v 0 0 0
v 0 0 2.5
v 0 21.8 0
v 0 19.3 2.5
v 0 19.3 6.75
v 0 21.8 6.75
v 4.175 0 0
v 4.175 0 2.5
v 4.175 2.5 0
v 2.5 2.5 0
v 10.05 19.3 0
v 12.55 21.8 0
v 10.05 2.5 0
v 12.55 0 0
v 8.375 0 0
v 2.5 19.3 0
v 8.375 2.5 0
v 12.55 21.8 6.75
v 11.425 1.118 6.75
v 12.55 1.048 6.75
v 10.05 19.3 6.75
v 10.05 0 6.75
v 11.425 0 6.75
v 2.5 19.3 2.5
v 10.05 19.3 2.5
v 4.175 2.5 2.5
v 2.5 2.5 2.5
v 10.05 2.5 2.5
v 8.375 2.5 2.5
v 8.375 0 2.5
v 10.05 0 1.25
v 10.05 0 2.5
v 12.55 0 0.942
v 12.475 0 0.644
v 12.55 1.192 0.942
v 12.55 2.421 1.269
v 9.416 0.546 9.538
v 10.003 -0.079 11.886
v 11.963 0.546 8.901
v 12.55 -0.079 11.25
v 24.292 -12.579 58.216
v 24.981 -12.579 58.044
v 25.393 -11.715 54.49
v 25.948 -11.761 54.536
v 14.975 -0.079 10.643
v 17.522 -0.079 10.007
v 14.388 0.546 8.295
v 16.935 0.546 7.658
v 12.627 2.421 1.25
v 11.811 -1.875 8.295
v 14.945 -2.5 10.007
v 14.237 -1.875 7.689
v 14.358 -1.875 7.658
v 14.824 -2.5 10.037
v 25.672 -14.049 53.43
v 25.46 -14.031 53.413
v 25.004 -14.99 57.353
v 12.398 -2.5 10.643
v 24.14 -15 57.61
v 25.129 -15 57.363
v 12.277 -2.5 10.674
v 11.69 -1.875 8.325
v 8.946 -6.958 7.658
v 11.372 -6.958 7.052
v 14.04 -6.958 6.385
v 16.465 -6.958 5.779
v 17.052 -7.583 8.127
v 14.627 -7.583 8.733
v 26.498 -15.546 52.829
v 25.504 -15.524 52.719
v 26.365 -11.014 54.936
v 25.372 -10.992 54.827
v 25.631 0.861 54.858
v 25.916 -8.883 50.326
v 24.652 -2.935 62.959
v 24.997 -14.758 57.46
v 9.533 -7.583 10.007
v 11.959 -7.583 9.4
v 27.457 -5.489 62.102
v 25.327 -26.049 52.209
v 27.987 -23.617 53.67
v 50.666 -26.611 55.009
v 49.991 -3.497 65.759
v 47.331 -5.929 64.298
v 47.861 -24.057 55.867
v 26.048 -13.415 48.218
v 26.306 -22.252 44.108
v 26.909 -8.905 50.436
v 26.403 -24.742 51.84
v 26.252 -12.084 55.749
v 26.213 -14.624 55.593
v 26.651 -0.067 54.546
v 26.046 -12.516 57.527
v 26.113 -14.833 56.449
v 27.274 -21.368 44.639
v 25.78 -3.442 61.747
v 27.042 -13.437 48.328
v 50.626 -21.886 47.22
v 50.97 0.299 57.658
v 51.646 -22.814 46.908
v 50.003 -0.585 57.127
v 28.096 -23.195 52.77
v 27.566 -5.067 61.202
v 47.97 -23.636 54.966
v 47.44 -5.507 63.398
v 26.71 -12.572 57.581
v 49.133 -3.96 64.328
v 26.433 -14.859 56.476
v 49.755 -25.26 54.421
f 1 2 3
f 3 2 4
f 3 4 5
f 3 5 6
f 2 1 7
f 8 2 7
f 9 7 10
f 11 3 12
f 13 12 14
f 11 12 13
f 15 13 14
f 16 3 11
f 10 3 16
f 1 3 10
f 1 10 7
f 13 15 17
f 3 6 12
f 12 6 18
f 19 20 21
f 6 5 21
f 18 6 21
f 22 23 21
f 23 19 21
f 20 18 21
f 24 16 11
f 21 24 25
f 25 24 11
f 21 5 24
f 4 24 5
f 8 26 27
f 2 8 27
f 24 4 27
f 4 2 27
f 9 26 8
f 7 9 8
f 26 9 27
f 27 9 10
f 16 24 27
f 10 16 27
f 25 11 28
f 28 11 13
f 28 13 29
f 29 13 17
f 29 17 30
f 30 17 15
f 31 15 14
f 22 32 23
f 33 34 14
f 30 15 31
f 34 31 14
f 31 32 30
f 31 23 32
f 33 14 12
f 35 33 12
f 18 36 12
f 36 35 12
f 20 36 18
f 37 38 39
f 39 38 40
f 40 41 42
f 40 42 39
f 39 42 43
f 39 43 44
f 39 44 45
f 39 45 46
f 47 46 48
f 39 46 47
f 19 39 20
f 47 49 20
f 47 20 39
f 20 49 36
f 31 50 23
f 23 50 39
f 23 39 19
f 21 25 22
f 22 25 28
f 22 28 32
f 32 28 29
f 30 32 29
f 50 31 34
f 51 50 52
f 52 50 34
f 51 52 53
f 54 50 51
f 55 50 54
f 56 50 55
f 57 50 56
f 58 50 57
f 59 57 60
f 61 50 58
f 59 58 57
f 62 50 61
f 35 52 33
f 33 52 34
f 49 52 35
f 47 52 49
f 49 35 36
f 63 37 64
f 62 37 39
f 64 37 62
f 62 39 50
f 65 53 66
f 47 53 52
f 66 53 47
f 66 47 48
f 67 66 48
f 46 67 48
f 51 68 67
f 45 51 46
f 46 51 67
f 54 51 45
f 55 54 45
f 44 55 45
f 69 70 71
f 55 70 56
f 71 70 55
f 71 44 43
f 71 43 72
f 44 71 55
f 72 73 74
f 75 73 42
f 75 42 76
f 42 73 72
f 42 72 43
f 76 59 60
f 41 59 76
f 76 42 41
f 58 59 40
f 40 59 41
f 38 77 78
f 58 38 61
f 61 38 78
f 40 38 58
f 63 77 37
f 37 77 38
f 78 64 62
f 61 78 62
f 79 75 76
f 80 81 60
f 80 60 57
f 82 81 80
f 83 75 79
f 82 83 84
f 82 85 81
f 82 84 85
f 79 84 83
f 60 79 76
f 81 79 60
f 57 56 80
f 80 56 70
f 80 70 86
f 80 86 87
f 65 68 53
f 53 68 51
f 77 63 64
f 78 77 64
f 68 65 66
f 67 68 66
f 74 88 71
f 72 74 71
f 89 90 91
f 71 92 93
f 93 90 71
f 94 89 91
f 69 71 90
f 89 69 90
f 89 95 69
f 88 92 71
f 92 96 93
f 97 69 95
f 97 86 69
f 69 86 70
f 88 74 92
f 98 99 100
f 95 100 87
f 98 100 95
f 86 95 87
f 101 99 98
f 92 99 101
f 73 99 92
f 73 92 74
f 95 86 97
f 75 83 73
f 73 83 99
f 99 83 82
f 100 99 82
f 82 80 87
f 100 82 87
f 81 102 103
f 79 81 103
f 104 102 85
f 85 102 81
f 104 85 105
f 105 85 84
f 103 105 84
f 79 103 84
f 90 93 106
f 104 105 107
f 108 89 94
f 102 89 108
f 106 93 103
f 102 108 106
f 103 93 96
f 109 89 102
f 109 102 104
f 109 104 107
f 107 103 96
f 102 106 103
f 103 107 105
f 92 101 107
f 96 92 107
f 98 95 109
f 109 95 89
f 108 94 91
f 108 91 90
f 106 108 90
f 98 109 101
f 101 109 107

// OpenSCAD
thickness = 2.5;
thicknessWC = 1;
length = 2.5;
lengthTop = 6.75;
gapWidth = 4.2;
pi = 3.141592653589793;
webcamSide = 23.5;
webcamSideCut = 20;
webcamHeight = 8;
barOffset = 15;
barLength = 60;
barDrop = 15;
wireHolderWidth = 2.75;
wireGapWidth = 5;
// Good w and w/o band
glassTouchpadHeight = 16.8;
glassTouchpadWidth = 7.55;

difference() {
// Create the base shape
cube([glassTouchpadWidth + thickness * 2, glassTouchpadHeight + thickness * 2, lengthTop]);
// Take out the part not at the top or left side
translate([-thickness, 0, length]) cube([glassTouchpadWidth + thickness * 2, glassTouchpadHeight + thickness, lengthTop - length]);
// Take the center out for glass
translate([thickness, thickness, 0]) cube([glassTouchpadWidth, glassTouchpadHeight, length]);
// Take the gap out
translate([thickness + glassTouchpadWidth / 2 - gapWidth / 2, 0, 0]) cube([gapWidth, thickness, length]);
}



// Add eye tracking bracket
translate([thickness + glassTouchpadWidth, 0, length / 2]) {
rotate([(asin(barDrop /barLength)), atan(barOffset/barLength), 0]) {
cube([thickness, thickness, barLength]);
// Make Wire holder
translate([0, 0, barLength / 8]) {
cube([wireHolderWidth /2 + thickness, thickness, thickness]);
translate([wireHolderWidth /2 + thickness / 2, -thickness - wireHolderWidth, 0]) cube([thickness, thickness * 2 + wireHolderWidth, thickness]);
translate([-wireHolderWidth /2 - thickness / 2, 0, 0]) {
cube([wireHolderWidth /2 + thickness, thickness, thickness]);
translate([0, -thickness - wireHolderWidth, 0]) cube([thickness, thickness + wireHolderWidth, thickness]);
}
}
// Make webcam holder
translate([0, 0, barLength]) {
translate([thickness / 2, 0, -thicknessWC]) {
rotate([10, -20, 4]) {
// Includes fudge factor to get the bar to line up with the box because it is angled
translate([0, -25 / 2 + thicknessWC / 2, -webcamHeight]) {
difference() {
cube([webcamSide + thicknessWC * 2, webcamSide + thicknessWC * 2, thicknessWC + webcamHeight]);
translate([thicknessWC, thicknessWC, -thicknessWC]) cube([webcamSide, webcamSide, webcamHeight + thicknessWC]);
translate([0, thicknessWC/2 + webcamSide / 2 - wireGapWidth / 2, -thicknessWC]) cube([webcamSide + thicknessWC, wireGapWidth, webcamHeight * 3 / 4]);
translate([thicknessWC + (webcamSide - webcamSideCut) / 2, thicknessWC + (webcamSide - webcamSideCut) / 2, webcamHeight]) cube([webcamSideCut, webcamSideCut, thicknessWC]);
}
}
}
}
}
}
}
